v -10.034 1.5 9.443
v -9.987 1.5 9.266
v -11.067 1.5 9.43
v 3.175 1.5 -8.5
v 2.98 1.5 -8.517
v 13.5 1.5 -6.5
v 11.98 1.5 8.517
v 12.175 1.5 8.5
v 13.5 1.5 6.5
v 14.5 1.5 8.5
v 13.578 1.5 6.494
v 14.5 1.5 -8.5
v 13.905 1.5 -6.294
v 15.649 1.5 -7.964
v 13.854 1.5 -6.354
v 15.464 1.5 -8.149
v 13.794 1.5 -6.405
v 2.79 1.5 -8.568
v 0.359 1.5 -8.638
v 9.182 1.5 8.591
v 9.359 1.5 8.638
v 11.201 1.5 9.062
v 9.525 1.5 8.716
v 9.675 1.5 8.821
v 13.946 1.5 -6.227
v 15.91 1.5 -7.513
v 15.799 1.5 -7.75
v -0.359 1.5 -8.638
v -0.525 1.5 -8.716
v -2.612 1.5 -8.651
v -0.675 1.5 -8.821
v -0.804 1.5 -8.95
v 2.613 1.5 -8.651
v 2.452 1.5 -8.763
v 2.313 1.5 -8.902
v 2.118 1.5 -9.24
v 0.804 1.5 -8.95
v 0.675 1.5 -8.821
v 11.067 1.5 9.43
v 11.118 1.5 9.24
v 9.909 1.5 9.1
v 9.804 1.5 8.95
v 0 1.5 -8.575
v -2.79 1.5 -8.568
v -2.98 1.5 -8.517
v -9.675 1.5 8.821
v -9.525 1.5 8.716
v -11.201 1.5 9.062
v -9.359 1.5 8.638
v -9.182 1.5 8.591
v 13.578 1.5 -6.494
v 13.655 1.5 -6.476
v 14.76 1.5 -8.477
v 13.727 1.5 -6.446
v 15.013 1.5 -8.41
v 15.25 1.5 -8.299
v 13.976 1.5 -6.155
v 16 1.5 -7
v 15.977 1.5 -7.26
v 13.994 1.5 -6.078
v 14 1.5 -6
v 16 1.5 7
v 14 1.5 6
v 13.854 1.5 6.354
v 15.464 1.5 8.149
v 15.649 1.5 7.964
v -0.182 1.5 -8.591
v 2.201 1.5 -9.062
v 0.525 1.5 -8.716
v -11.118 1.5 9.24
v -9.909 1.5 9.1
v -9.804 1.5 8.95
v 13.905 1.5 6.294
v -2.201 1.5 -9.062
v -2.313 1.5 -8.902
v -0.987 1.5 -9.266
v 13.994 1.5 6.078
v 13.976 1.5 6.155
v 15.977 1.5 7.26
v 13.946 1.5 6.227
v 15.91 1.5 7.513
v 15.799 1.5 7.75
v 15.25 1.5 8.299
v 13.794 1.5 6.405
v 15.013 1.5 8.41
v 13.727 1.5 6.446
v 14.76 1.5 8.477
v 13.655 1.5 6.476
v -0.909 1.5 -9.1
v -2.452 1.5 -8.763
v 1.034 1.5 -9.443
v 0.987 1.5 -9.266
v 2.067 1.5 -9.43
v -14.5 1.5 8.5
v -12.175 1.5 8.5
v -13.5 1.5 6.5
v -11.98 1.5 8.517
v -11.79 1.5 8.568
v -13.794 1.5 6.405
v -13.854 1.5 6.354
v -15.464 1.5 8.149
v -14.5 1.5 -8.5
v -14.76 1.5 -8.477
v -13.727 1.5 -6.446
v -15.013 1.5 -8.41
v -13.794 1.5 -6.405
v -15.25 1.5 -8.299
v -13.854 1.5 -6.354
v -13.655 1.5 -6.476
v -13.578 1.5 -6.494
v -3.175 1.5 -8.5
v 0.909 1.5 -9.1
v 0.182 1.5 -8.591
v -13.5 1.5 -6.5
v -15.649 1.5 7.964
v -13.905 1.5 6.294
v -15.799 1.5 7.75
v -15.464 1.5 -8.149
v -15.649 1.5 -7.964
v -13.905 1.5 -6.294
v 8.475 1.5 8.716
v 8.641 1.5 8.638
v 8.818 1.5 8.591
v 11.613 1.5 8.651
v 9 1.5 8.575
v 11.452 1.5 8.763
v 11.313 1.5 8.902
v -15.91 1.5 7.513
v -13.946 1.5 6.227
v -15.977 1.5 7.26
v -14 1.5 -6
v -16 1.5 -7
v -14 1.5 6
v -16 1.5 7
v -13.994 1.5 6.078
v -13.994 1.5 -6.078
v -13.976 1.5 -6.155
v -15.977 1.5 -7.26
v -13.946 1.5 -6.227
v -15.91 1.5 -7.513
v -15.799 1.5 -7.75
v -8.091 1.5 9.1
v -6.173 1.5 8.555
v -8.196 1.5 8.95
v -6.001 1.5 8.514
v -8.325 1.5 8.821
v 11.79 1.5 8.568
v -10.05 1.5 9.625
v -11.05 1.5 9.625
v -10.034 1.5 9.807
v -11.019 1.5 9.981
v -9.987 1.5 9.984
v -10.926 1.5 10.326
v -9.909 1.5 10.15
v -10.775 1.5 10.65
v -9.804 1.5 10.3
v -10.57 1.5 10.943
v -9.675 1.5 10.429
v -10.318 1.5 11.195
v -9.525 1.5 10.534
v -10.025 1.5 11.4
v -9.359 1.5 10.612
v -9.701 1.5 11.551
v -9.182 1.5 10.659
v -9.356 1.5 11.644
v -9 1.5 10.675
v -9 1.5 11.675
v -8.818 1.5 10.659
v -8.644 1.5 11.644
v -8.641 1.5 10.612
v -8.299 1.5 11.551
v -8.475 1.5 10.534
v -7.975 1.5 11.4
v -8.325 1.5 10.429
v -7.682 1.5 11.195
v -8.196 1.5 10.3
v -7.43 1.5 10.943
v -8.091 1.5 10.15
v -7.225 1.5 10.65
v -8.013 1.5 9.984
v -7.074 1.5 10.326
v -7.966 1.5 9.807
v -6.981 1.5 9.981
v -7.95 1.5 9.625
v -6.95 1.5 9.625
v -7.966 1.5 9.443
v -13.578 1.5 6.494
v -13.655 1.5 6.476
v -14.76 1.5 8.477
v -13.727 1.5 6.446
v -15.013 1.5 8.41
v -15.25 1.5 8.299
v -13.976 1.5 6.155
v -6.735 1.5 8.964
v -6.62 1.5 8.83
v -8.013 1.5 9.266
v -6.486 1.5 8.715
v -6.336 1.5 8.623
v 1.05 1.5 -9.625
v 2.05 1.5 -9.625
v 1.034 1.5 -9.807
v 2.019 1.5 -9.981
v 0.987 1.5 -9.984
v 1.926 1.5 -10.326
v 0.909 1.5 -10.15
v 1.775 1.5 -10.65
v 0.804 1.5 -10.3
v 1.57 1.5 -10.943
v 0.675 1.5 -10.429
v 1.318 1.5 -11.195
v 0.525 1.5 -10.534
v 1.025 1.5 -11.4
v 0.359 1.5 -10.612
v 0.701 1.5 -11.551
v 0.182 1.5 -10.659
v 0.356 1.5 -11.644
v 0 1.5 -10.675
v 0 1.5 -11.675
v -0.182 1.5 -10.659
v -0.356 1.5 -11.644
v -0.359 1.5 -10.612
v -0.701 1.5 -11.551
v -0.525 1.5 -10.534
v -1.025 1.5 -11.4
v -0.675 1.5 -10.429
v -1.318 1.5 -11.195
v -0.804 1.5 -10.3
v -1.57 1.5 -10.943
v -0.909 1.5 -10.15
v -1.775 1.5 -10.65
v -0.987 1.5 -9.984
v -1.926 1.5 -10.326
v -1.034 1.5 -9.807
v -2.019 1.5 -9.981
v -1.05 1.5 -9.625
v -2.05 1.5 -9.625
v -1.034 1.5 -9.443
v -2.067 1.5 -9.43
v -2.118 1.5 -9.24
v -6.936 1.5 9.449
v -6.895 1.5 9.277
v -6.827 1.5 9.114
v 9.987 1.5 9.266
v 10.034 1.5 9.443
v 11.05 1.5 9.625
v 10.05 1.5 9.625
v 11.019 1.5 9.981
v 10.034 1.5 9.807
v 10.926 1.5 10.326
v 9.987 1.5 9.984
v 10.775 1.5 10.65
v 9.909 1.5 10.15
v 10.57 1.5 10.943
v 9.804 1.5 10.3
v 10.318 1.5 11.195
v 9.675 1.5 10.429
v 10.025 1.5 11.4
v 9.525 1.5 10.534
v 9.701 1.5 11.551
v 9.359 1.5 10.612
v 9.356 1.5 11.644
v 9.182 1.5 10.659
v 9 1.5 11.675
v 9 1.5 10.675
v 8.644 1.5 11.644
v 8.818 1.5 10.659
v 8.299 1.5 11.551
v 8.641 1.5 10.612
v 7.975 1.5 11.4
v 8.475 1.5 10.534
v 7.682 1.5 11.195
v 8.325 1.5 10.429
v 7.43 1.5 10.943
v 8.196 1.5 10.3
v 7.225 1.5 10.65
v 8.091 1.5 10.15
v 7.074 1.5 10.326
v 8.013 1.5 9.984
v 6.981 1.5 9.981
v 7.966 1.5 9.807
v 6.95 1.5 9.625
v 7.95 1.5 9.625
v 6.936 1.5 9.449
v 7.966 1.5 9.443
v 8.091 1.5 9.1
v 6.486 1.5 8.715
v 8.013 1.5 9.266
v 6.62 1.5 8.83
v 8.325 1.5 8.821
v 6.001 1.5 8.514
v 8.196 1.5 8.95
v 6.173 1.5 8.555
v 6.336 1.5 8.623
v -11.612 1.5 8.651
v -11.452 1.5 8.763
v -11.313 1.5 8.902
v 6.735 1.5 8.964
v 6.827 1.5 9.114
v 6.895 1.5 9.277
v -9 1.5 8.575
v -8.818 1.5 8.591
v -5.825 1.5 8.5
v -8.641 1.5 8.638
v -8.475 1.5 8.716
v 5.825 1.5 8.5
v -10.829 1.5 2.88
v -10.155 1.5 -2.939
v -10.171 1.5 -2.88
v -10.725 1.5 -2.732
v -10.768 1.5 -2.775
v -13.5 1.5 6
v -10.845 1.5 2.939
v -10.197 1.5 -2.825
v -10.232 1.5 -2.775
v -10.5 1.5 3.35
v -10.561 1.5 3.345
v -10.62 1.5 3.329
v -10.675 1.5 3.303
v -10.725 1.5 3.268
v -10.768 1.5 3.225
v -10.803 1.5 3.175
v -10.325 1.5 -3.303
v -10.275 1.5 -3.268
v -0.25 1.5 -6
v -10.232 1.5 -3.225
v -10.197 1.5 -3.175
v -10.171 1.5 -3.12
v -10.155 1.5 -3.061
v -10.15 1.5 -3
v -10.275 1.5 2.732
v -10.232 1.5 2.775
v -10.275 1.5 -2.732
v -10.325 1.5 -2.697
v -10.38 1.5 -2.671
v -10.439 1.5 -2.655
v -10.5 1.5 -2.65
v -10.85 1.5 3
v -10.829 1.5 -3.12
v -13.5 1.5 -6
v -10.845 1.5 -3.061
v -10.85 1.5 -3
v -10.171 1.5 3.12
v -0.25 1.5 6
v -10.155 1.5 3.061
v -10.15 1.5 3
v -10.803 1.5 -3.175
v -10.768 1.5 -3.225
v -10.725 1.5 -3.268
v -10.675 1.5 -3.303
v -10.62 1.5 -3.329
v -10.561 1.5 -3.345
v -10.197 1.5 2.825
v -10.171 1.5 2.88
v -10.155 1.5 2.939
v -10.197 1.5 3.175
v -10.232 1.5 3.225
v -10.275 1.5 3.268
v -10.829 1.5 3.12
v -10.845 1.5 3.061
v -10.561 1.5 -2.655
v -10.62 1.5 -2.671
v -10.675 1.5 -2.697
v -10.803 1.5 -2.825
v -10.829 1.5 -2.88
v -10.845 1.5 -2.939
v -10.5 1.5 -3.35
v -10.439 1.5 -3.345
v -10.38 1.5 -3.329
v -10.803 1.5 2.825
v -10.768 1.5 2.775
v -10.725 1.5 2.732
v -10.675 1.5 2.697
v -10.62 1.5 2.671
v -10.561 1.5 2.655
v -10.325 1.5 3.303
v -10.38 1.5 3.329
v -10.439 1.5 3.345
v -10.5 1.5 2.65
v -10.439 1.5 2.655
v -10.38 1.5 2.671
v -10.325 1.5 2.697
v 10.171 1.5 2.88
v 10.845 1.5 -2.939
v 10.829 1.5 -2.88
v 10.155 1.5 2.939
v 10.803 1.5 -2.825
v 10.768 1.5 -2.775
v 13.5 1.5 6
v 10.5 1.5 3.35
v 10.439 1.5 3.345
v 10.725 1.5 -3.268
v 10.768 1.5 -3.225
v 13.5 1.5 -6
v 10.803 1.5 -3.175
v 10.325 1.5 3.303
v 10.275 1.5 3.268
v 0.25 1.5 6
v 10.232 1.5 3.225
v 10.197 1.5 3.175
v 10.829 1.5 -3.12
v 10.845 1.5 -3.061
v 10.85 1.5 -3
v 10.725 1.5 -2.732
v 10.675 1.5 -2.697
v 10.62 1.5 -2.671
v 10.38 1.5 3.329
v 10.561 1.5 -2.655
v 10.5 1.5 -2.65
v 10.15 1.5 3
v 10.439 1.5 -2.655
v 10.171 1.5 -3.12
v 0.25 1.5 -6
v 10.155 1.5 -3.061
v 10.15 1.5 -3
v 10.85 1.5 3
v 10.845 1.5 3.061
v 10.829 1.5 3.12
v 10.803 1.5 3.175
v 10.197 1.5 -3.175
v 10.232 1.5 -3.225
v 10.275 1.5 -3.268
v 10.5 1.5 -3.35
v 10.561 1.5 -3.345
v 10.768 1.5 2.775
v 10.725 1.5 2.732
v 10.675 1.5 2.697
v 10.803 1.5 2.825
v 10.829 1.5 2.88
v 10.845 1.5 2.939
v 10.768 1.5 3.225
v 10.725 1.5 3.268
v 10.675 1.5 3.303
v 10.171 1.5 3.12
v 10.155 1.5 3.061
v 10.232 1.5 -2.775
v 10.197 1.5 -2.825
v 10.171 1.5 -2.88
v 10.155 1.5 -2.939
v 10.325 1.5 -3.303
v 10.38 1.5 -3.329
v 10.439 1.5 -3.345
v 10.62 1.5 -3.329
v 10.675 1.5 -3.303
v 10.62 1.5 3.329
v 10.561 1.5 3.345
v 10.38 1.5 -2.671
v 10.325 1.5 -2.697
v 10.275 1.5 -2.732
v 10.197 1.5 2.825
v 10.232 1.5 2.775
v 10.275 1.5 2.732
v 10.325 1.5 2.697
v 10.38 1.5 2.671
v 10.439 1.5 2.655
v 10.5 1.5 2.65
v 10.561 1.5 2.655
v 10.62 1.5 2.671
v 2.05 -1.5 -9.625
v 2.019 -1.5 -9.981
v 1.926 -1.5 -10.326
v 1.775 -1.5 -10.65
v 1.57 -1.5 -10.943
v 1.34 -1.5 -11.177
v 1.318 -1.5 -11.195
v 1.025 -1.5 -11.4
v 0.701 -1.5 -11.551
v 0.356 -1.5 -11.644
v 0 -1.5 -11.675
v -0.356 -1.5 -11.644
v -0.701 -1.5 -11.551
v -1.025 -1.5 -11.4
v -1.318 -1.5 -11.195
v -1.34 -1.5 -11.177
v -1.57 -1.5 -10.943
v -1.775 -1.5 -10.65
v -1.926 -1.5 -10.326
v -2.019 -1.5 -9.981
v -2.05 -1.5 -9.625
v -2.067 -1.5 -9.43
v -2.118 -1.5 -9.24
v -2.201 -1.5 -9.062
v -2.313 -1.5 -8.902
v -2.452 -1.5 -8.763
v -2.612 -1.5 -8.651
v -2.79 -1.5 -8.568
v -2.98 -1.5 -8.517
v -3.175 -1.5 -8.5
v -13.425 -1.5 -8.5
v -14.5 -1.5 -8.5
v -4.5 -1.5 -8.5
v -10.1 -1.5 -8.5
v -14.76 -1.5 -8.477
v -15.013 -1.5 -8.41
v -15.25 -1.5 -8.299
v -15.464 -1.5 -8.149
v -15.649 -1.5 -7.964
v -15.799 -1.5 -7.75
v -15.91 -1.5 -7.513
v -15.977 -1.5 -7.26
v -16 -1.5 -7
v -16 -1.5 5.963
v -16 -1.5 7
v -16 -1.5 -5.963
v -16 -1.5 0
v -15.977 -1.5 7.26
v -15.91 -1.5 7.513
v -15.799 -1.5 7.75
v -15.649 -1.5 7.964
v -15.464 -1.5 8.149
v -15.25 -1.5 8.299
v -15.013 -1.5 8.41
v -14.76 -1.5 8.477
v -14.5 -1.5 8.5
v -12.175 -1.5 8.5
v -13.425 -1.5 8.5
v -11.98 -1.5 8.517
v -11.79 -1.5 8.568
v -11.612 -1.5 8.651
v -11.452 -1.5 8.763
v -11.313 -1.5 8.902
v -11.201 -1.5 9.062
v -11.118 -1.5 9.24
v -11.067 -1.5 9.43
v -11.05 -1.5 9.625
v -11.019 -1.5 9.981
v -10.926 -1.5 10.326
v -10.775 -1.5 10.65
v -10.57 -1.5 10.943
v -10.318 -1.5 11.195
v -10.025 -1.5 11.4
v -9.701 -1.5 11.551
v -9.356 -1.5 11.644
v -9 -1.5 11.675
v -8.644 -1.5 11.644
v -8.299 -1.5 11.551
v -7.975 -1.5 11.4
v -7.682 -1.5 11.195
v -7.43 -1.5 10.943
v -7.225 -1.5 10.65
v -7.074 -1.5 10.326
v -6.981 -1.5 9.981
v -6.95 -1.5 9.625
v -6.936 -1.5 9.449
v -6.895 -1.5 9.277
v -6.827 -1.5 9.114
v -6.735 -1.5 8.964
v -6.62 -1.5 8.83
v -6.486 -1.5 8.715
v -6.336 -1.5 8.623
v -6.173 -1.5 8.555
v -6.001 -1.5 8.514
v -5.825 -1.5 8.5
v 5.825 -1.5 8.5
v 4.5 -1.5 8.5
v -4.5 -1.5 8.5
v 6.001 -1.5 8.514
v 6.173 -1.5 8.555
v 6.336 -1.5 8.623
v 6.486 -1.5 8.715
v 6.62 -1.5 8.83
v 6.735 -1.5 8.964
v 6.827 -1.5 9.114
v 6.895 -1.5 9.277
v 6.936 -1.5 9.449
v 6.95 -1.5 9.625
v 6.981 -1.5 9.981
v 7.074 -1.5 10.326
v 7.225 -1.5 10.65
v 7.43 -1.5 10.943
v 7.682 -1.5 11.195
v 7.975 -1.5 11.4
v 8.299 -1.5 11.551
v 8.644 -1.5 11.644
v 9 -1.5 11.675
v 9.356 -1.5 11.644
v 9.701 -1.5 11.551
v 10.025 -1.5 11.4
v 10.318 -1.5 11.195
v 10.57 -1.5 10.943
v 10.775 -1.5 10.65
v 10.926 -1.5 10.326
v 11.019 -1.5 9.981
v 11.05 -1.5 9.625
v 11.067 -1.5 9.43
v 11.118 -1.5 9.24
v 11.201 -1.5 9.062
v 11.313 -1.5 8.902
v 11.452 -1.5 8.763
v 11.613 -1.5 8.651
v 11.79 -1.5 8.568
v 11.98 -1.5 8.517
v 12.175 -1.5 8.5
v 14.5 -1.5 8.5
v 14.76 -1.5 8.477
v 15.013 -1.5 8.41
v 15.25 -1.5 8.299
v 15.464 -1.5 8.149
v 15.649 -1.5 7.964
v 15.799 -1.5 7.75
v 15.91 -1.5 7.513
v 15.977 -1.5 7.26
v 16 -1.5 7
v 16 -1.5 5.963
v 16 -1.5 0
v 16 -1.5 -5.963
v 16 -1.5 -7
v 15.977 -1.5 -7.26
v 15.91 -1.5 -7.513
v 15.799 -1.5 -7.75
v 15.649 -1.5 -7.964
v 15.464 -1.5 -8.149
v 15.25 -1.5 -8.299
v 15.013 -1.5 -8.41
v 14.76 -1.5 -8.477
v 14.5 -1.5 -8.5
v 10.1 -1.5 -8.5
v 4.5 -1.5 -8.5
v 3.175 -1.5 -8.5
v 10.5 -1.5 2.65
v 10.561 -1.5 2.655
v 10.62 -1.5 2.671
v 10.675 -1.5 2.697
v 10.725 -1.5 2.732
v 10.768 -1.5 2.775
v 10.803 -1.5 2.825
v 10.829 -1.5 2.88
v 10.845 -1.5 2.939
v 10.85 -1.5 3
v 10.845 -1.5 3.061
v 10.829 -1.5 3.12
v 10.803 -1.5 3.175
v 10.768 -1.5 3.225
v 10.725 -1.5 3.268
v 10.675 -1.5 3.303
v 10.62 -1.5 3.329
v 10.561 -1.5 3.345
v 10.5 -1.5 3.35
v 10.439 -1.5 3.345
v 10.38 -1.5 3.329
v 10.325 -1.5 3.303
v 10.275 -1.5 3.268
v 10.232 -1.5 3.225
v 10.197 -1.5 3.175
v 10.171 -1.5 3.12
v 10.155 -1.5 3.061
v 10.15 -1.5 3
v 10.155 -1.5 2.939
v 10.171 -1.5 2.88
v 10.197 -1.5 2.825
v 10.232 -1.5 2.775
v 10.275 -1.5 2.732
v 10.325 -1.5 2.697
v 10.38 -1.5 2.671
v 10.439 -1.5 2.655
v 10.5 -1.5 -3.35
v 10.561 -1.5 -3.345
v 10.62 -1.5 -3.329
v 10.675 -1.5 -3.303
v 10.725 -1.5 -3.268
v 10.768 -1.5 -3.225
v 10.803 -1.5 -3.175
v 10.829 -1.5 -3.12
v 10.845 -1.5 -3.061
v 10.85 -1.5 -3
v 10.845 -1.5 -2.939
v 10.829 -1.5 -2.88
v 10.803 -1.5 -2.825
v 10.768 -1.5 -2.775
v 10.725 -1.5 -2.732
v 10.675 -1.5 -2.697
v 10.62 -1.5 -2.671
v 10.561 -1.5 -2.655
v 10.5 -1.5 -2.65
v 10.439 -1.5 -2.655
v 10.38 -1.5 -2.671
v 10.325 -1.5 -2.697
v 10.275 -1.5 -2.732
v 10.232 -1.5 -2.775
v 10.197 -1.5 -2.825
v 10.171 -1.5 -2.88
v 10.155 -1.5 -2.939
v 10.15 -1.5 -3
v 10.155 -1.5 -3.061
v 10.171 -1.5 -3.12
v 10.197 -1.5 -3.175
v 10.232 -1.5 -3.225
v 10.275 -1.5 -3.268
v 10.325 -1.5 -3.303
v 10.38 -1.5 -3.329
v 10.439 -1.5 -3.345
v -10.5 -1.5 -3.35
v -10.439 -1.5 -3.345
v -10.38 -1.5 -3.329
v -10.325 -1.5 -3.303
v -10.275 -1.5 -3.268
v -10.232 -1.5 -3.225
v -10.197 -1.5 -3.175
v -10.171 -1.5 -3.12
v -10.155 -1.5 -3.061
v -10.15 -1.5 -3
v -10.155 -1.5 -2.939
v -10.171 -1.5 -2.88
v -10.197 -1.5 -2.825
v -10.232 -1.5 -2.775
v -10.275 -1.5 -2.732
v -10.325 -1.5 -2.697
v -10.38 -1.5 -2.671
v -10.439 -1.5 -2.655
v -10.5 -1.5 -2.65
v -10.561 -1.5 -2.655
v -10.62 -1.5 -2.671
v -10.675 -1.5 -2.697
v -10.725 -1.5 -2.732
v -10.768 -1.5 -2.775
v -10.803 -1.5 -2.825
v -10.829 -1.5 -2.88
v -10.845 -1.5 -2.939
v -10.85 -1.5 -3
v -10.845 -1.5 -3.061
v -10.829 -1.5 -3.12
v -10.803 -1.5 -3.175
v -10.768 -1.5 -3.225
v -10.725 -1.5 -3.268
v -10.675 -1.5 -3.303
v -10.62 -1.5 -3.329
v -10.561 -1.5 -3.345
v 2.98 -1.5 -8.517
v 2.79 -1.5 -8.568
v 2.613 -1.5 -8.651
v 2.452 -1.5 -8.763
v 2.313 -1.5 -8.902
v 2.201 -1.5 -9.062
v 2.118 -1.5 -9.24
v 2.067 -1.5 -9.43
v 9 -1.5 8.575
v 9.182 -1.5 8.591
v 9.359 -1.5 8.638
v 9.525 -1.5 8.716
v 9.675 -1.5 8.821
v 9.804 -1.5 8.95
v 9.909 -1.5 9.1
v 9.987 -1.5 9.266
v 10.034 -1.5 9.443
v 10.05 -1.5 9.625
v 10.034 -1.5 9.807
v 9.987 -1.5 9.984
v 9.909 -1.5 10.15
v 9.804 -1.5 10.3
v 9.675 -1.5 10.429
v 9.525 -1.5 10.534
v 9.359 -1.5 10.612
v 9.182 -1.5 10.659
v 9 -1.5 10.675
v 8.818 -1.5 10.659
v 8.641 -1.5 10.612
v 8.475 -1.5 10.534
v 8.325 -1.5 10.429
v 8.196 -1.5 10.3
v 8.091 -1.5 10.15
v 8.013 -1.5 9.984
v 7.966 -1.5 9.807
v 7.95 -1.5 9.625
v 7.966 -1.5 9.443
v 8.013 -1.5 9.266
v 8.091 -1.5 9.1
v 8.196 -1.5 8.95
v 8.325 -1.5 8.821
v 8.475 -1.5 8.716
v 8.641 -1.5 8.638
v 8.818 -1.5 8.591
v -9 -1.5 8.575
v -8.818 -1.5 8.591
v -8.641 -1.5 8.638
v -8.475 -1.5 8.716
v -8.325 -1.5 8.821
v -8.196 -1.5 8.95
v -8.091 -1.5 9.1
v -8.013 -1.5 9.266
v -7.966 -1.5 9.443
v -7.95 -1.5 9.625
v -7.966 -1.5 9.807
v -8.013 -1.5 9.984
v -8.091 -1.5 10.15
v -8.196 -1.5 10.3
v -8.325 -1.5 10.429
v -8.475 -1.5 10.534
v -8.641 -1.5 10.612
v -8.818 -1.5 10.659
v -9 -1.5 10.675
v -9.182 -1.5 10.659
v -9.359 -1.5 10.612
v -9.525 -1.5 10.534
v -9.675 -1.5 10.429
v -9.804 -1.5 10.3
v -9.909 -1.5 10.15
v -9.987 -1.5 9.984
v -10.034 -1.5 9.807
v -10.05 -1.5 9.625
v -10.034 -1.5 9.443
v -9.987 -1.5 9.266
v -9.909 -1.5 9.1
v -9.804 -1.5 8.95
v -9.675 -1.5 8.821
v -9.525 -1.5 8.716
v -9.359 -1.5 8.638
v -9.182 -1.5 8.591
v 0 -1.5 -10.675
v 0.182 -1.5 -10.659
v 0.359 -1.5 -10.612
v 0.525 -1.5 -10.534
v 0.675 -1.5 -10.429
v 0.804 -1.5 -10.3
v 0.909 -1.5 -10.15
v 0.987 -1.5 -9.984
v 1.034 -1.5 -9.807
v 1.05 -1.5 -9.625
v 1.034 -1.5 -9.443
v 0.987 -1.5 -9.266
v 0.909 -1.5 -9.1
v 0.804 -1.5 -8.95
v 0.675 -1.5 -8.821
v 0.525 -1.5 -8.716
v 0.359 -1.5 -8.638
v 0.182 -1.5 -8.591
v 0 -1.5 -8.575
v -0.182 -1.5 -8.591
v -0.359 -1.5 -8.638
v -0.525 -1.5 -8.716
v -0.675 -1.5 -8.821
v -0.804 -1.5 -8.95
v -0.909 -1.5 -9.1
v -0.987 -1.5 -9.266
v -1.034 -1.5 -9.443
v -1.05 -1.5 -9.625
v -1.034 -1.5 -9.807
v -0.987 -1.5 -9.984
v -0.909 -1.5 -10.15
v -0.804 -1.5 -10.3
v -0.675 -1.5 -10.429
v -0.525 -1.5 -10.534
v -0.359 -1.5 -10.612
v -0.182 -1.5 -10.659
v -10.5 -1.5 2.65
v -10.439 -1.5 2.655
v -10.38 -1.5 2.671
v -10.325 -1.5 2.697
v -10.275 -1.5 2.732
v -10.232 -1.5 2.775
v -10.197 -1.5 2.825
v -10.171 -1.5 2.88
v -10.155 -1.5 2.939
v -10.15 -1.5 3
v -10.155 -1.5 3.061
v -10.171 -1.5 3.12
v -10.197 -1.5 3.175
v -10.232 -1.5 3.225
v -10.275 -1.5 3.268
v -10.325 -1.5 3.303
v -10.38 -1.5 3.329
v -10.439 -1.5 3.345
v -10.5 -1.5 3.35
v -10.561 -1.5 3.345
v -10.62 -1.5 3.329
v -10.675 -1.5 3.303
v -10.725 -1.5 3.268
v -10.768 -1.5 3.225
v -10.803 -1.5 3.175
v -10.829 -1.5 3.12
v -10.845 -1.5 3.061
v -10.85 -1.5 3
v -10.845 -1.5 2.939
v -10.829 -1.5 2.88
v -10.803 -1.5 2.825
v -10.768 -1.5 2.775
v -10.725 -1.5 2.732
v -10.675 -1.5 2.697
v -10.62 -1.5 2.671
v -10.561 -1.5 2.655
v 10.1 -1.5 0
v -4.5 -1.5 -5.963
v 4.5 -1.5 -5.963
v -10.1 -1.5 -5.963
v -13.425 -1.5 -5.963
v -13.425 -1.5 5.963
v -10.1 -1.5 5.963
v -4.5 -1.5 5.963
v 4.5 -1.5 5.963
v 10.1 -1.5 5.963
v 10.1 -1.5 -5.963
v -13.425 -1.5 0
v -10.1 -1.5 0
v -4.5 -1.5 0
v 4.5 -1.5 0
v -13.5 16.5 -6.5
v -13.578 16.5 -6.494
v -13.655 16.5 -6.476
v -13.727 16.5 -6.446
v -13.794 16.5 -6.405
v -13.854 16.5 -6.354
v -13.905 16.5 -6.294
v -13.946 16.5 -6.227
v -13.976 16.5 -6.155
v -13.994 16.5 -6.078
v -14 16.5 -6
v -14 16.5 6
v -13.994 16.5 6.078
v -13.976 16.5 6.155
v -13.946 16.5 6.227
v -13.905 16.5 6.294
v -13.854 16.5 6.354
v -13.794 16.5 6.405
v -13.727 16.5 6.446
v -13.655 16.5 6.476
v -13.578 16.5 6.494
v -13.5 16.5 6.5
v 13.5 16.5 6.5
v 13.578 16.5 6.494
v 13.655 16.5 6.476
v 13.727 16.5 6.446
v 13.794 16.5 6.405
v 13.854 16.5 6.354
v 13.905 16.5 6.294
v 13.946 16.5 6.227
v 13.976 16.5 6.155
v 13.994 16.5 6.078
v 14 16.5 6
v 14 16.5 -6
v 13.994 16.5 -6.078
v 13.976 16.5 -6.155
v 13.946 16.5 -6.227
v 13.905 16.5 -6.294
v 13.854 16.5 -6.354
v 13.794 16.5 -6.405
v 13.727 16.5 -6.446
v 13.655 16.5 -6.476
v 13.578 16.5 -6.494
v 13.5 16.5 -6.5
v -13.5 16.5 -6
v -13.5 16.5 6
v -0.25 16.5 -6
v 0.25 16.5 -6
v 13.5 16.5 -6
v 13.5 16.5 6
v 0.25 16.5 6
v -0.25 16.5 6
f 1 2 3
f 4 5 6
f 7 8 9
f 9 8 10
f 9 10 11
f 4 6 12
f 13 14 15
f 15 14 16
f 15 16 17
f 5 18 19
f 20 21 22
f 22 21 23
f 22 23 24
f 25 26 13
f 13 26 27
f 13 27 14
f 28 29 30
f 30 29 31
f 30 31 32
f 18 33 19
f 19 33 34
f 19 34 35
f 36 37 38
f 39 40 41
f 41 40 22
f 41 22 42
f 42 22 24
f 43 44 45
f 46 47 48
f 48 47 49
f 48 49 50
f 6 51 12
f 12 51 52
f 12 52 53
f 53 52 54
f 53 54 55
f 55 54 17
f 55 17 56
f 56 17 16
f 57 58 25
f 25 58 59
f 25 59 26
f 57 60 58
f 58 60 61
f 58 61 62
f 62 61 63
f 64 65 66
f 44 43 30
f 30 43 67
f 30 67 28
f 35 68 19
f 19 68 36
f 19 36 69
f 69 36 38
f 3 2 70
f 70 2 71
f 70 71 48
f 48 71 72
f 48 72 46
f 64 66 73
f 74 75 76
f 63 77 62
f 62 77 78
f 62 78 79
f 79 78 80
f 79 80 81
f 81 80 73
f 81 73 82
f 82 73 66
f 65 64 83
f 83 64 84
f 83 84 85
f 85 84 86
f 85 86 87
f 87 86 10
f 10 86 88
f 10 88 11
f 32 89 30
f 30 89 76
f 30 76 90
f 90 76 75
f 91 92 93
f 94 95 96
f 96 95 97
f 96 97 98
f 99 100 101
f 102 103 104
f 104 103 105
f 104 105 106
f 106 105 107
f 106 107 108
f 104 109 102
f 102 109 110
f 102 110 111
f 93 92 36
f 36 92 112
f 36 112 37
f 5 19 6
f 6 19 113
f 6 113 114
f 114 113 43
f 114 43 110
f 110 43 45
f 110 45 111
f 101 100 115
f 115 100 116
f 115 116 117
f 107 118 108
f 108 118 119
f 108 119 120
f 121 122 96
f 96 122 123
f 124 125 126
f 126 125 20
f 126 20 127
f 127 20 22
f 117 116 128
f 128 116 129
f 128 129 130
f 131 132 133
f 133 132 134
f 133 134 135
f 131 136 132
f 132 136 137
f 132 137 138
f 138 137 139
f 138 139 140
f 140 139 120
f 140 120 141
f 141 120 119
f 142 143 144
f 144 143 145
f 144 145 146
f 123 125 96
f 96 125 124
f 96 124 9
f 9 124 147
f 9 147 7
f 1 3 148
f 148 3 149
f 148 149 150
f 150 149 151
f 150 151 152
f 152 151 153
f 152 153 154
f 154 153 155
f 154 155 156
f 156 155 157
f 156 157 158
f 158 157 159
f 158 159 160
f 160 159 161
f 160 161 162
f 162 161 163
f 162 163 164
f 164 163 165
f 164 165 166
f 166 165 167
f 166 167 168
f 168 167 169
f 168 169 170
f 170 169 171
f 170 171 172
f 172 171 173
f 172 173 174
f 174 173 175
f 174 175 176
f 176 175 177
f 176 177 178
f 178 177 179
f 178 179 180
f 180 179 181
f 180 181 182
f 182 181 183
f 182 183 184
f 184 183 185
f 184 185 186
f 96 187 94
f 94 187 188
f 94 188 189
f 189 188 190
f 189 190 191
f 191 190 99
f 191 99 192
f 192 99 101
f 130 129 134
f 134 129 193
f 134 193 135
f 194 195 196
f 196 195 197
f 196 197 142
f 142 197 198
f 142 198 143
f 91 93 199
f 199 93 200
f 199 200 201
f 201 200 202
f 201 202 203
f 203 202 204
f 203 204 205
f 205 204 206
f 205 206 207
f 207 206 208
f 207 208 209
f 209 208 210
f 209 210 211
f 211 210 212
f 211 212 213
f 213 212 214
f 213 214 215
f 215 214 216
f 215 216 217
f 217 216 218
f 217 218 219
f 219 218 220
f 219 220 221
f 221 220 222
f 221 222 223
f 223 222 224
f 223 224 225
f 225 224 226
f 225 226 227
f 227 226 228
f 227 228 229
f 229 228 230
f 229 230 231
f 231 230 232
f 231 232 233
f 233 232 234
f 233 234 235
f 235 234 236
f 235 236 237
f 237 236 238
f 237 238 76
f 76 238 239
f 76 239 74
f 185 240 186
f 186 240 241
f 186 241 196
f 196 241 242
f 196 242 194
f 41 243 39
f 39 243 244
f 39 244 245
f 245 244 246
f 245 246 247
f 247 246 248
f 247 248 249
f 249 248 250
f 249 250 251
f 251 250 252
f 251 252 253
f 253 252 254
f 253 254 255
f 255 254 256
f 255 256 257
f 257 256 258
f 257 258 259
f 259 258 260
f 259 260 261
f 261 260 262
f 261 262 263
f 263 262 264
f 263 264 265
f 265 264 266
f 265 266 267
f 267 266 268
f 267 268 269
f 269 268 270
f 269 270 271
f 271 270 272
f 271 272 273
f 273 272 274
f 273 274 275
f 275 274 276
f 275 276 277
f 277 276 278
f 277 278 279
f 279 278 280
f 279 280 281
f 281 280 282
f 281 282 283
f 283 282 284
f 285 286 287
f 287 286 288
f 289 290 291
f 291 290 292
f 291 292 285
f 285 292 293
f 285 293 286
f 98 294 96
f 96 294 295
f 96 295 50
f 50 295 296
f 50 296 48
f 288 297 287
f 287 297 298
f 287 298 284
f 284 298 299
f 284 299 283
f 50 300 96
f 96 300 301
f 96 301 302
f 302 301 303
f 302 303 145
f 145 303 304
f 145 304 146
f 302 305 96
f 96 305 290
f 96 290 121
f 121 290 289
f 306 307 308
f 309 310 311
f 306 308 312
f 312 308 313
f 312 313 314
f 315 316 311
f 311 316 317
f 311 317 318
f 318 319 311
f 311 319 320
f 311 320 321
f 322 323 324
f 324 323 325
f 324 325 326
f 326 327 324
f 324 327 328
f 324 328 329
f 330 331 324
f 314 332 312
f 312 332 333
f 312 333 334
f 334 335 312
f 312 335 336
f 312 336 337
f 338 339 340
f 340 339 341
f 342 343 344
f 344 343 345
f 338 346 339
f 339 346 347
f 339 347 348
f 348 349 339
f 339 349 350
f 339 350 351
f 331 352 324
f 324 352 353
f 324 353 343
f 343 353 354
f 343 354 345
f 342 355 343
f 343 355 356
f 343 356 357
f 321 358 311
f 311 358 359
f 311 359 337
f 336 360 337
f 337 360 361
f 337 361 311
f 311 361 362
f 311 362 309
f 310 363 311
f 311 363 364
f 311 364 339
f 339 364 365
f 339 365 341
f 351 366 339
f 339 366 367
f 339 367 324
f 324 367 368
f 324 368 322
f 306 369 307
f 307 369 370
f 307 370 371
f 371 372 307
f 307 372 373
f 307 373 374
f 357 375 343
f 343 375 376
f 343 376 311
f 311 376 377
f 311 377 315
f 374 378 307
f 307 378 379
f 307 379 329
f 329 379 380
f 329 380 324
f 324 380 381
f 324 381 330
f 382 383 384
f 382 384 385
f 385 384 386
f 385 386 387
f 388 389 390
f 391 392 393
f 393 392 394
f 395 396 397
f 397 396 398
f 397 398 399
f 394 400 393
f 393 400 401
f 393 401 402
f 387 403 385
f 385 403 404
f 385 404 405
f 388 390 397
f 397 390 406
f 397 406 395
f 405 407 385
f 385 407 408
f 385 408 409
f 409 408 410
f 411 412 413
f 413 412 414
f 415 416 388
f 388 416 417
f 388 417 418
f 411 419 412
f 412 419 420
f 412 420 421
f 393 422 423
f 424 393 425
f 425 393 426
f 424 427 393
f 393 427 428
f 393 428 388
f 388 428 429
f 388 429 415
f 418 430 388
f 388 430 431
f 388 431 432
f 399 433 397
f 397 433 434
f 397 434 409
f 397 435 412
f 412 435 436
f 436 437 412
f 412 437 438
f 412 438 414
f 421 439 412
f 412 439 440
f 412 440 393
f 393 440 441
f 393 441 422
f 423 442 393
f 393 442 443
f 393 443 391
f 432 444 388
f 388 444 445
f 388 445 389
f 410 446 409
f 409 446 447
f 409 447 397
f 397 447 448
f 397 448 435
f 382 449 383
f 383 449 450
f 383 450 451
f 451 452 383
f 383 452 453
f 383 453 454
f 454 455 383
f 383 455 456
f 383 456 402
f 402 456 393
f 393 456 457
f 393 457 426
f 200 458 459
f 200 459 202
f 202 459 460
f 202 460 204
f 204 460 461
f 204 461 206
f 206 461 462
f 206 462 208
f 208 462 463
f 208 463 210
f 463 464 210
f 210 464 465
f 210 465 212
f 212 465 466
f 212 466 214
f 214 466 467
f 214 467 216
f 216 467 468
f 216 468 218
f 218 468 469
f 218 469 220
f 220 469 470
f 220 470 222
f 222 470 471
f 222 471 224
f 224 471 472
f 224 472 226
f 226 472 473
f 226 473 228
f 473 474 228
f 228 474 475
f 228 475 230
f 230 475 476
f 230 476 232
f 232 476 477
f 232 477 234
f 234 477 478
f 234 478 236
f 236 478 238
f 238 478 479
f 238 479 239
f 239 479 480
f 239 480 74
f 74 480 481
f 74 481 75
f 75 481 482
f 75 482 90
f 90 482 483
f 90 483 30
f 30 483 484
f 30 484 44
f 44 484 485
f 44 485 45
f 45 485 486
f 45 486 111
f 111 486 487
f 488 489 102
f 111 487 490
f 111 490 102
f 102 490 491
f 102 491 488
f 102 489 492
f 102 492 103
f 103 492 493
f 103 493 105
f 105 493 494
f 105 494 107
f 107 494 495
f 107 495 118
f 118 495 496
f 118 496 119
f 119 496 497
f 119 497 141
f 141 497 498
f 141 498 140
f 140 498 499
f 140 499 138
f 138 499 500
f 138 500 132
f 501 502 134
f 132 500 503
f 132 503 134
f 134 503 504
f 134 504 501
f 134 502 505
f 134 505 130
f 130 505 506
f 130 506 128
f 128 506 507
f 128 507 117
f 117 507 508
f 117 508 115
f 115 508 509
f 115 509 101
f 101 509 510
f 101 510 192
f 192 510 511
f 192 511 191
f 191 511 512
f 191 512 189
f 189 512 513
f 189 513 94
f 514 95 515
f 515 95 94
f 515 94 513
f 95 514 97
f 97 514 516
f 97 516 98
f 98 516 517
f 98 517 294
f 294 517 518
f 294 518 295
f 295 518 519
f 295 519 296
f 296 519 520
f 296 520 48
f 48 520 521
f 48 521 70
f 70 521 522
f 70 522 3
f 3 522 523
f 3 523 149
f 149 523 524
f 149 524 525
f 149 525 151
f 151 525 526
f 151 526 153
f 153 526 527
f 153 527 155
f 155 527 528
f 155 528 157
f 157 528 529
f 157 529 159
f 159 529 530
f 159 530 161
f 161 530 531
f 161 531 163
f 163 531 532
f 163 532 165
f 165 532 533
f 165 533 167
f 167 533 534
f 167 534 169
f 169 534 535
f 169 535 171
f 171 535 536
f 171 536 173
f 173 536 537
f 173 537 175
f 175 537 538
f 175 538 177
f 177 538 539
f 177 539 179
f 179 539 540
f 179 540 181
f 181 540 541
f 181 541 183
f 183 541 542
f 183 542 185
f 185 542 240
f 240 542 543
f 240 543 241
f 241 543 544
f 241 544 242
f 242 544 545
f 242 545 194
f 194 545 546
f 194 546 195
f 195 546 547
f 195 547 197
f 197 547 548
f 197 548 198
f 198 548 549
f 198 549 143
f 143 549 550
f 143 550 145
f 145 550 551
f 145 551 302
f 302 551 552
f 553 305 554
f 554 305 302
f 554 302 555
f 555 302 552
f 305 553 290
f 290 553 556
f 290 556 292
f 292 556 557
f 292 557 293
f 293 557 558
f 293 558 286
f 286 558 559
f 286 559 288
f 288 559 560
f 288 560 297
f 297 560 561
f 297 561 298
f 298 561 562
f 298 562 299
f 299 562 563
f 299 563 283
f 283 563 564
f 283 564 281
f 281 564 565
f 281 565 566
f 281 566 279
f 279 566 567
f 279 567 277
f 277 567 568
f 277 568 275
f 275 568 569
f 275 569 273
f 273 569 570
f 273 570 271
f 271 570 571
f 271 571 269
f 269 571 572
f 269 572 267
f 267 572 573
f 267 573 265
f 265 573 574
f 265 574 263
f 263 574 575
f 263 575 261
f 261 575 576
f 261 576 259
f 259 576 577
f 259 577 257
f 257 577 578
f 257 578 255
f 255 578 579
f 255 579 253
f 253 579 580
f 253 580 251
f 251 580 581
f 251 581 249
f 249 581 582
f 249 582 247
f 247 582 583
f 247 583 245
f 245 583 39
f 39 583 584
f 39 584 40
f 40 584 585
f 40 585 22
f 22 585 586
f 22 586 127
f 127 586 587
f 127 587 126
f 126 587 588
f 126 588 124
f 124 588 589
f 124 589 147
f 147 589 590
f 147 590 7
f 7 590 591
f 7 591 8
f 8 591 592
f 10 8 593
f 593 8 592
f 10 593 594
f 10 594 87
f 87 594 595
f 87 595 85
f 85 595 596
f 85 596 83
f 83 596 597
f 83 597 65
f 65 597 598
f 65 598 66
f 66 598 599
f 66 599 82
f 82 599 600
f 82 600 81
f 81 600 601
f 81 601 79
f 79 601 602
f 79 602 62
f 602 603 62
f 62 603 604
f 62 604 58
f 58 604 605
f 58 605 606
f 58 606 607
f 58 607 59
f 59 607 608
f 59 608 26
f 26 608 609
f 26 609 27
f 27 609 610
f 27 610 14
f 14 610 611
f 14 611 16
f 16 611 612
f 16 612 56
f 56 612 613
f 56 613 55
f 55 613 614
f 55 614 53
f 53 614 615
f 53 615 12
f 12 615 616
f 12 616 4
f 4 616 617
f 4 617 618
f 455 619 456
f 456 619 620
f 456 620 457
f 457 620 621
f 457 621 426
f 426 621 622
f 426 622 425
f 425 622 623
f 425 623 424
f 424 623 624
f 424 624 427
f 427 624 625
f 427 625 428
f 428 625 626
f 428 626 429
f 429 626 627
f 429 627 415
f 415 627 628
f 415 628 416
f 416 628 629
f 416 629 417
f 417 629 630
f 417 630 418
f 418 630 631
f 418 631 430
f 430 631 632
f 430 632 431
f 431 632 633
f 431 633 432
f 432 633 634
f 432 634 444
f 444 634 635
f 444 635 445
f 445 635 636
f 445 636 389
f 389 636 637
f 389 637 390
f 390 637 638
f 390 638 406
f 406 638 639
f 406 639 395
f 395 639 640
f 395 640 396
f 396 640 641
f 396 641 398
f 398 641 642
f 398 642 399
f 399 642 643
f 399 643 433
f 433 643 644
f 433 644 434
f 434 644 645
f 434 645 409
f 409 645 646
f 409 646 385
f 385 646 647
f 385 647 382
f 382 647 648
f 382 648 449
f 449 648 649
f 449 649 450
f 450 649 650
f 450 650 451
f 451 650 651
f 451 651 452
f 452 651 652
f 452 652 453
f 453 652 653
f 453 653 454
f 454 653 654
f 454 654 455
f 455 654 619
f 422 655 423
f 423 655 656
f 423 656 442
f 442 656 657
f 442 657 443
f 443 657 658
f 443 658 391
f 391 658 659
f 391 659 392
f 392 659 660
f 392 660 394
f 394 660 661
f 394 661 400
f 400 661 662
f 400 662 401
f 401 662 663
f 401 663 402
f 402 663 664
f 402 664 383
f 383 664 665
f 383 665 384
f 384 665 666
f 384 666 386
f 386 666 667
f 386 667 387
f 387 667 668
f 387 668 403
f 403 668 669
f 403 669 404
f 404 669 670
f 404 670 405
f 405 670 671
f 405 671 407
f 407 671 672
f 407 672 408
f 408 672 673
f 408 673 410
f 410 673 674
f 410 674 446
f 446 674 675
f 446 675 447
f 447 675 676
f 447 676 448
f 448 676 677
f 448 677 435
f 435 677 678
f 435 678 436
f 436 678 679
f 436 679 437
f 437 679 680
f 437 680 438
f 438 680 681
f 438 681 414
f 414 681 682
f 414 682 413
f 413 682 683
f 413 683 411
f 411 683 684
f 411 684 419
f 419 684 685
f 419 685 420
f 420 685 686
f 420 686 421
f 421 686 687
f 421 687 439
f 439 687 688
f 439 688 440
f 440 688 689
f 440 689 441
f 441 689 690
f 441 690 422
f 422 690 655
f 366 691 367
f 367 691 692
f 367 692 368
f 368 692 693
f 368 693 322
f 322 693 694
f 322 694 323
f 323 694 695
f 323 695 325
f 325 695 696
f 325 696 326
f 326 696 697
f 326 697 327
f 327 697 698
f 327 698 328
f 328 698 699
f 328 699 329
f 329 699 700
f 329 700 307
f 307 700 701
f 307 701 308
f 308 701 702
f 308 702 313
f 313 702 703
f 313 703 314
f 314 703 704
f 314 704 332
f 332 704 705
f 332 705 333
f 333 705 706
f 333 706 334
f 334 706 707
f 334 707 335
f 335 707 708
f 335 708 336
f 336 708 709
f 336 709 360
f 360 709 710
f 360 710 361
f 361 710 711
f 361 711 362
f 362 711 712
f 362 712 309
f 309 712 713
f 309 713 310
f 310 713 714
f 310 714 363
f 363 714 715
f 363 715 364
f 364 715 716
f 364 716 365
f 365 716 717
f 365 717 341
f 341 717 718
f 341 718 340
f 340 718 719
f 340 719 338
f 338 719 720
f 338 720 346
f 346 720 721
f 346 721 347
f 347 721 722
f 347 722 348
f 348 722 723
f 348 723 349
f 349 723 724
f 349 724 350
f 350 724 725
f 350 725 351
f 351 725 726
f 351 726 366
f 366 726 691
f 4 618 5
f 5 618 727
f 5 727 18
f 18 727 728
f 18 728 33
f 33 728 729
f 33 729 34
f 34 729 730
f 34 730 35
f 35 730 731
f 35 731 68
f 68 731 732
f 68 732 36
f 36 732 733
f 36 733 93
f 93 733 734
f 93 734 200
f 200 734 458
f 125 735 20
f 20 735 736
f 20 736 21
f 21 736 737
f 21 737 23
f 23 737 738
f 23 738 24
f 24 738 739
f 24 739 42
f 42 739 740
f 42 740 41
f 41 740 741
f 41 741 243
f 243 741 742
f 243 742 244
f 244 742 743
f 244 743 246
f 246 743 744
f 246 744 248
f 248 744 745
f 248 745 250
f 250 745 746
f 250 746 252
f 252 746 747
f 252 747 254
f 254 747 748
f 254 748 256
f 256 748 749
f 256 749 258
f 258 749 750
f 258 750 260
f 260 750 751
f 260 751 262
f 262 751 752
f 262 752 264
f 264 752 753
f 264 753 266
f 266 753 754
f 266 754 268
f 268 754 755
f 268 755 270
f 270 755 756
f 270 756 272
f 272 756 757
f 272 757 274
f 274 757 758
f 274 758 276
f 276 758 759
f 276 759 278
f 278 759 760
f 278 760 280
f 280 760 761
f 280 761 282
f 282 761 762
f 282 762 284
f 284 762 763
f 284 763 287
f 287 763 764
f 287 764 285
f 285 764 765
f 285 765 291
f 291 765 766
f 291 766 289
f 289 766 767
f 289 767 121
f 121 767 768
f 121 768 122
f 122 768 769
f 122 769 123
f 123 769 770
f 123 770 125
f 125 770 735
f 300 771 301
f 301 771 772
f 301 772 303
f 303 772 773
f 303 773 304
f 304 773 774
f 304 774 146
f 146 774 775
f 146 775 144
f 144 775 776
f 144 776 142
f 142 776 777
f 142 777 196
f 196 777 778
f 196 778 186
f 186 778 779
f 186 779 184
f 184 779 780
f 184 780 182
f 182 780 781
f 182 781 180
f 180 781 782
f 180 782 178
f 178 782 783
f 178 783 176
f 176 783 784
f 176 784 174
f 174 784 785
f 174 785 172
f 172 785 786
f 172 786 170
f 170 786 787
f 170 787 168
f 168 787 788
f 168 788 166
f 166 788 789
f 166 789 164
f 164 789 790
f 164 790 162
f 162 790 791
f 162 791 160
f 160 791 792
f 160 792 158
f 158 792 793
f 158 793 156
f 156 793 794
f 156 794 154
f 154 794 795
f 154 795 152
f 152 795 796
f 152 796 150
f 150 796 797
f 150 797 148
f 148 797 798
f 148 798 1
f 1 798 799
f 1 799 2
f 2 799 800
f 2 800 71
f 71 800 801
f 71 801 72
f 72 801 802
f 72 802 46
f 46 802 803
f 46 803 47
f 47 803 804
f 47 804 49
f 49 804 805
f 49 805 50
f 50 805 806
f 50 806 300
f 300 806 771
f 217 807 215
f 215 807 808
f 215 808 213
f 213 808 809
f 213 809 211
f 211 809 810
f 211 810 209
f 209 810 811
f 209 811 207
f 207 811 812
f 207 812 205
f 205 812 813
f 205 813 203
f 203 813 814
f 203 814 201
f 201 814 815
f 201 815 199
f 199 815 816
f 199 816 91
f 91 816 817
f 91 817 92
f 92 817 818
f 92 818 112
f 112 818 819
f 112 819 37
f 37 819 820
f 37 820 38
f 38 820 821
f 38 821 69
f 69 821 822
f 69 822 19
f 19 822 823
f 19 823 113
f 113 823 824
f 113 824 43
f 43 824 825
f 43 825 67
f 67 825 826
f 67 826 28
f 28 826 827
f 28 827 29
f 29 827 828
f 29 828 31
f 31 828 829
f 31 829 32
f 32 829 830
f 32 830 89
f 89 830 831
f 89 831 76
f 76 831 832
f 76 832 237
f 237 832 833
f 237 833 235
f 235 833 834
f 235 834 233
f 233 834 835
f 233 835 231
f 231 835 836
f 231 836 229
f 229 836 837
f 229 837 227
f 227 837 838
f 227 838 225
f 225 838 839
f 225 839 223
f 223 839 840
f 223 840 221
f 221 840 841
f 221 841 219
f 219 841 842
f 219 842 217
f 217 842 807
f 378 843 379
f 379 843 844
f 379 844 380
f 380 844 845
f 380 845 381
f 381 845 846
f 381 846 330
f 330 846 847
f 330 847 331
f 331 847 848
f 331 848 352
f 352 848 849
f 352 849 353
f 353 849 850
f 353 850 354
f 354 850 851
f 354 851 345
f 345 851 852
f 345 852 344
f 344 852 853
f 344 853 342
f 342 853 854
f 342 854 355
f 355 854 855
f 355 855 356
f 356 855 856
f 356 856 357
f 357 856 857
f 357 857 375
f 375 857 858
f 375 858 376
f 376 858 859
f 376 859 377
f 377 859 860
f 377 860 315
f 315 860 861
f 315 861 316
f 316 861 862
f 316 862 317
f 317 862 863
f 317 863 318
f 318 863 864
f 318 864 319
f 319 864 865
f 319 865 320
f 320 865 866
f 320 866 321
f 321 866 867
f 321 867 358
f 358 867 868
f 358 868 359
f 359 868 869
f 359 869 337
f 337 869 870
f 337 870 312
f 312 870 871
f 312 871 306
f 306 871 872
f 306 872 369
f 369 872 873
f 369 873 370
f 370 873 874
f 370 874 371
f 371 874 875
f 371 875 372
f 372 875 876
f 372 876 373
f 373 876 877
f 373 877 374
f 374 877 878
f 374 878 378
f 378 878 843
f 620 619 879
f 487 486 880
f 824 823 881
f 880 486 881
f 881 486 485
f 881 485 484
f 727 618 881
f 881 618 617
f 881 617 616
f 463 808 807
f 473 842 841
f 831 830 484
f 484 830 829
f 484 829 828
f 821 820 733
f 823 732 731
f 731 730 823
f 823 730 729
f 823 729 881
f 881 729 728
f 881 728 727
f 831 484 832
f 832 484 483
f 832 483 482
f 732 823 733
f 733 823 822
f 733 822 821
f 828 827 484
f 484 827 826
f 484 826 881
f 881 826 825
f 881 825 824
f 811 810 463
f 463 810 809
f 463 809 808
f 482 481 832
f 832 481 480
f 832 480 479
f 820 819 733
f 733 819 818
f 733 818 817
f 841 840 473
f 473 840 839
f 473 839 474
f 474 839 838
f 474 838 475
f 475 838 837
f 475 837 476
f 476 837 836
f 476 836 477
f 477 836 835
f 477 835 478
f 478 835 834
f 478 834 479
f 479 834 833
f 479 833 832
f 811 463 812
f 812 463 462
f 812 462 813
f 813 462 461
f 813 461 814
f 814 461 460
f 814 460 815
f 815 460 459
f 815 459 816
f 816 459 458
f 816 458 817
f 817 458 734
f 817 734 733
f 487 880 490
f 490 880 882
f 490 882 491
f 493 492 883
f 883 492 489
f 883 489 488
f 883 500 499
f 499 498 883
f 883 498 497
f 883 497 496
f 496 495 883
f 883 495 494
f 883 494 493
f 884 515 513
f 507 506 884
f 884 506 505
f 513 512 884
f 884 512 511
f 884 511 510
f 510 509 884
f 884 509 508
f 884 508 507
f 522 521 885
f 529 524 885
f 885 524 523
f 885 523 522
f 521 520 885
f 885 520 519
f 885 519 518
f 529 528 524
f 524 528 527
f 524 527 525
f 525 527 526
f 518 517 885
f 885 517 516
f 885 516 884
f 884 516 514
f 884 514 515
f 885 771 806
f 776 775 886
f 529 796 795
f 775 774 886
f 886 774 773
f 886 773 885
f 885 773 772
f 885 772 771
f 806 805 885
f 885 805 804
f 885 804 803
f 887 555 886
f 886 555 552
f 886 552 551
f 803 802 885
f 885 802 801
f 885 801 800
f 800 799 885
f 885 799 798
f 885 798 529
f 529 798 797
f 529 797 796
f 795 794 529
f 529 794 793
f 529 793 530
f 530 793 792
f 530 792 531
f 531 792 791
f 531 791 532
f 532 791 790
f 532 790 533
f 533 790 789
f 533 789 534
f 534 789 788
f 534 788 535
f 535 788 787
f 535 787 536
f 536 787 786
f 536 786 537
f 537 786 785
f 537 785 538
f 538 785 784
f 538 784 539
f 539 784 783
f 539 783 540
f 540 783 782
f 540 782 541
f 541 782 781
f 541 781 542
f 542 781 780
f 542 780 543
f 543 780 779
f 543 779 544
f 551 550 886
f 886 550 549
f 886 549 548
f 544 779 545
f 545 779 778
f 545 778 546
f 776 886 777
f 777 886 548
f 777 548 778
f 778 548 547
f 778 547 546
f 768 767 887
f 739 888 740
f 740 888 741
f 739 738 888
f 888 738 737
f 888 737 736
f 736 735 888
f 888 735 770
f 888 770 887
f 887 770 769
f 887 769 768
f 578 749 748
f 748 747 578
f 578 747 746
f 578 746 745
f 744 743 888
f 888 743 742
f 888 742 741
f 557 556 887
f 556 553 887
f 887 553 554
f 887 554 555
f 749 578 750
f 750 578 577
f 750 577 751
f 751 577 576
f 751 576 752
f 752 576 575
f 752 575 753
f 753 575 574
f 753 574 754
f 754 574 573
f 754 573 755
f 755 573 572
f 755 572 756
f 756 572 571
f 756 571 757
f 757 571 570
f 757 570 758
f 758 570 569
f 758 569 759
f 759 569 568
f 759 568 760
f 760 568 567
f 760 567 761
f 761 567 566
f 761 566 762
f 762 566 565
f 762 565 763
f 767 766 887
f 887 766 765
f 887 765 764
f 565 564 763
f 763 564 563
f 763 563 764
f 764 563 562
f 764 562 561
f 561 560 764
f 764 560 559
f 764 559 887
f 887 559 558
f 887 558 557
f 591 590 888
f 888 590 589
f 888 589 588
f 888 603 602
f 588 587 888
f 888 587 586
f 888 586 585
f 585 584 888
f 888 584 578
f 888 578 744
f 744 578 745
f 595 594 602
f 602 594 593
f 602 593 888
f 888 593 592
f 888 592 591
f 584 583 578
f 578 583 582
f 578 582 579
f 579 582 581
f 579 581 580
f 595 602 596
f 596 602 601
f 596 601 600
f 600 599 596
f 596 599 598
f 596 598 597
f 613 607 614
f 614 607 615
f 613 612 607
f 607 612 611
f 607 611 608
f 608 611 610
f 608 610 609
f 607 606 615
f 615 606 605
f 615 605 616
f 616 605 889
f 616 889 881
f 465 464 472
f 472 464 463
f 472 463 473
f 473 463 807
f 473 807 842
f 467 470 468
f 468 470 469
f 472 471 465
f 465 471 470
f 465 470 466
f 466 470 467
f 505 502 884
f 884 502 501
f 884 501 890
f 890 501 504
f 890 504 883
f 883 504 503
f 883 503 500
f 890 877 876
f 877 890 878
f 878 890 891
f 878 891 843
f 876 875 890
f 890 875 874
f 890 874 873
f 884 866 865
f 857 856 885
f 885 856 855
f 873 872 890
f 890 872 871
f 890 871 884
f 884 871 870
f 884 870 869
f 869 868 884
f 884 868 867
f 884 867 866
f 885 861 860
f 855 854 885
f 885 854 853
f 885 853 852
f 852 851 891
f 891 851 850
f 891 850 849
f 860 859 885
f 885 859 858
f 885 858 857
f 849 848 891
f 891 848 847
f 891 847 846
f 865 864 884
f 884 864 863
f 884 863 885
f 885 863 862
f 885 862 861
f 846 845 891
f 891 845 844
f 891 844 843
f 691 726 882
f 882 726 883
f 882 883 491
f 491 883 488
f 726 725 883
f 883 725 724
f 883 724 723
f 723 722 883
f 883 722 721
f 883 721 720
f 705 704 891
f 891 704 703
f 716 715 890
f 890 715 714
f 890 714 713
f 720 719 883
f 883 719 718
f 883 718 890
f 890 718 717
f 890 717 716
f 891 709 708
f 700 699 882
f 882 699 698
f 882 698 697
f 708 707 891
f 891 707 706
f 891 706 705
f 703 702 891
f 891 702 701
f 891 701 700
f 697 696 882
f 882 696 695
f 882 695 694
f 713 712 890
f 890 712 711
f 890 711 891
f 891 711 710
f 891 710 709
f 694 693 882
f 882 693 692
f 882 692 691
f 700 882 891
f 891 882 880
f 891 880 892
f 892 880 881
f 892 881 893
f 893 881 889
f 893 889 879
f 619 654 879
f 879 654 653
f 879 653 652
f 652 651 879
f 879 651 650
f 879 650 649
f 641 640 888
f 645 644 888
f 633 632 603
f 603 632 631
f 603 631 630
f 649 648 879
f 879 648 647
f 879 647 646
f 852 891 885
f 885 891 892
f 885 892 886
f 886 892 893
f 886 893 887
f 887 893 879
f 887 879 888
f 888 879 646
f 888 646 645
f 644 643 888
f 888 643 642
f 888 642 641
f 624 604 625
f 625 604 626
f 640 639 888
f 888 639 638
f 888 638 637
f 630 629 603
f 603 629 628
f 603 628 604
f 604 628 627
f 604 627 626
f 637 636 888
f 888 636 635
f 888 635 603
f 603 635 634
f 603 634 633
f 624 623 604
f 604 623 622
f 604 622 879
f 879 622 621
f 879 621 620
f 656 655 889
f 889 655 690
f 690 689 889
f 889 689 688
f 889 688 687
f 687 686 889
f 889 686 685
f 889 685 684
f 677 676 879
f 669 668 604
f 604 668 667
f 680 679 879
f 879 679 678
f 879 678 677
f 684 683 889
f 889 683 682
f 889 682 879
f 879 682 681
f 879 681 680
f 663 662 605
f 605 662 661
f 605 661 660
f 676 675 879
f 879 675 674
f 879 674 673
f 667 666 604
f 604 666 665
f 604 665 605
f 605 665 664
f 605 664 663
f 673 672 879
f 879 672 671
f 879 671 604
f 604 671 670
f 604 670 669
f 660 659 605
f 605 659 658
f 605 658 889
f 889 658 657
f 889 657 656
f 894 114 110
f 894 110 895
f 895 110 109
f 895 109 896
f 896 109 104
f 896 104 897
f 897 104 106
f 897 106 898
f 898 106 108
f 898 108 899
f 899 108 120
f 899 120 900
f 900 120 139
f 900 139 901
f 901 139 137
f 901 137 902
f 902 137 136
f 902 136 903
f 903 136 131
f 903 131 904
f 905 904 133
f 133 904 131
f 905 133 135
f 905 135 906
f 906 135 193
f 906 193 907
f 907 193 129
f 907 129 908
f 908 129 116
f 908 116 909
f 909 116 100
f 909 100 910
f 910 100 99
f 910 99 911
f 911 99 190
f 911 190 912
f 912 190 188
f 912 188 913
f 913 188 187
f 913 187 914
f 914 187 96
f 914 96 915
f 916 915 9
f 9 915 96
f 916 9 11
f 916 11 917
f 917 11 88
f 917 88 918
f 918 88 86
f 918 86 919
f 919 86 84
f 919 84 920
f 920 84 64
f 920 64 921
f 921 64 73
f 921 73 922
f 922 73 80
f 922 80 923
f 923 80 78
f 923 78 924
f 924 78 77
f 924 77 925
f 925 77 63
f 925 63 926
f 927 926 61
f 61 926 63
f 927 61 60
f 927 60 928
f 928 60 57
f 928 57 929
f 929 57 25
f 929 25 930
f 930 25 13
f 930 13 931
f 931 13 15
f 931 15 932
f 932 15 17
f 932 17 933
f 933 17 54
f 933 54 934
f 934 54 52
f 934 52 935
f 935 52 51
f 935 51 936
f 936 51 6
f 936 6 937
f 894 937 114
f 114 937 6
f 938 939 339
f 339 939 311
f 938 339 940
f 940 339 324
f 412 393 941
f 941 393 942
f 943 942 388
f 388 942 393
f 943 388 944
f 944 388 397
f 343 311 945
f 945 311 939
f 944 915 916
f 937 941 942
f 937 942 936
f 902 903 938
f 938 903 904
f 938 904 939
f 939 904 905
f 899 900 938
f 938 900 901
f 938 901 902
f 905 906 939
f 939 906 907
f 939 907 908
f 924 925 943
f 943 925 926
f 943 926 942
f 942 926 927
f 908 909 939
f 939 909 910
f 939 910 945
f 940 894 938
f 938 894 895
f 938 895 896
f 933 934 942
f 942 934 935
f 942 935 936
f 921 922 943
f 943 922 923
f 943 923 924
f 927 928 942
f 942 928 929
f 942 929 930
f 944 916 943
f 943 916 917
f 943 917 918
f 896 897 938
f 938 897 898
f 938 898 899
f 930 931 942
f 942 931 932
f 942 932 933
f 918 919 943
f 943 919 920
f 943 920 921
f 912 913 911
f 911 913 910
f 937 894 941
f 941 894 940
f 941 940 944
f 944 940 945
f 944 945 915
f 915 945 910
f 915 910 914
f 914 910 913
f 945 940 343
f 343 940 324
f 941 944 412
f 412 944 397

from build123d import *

# Parameters (mm, degrees)
BASE_PLATE_AND_PORTS_2_R   = 0.35
BASE_PLATE_AND_PORTS_2_R_2 = 1.05
BASE_PLATE_AND_PORTS_DEPTH = 1.5
RESERVOIRS_W               = 0.5
RESERVOIRS_H               = 12
BOSS_EXTRUDE1_DEPTH        = 15


with BuildPart() as part:
    # Base-plate and ports 2 → Base plate and ports (new, symmetric)
    with BuildSketch(Plane(origin=(0, 0, 0), x_dir=(1, 0, 0), z_dir=(0, 1, 0))):
        with BuildLine():
            Line((-16, -7), (-16, 7))
            ThreePointArc((-16, 7), (-15.560660172, 8.060660172), (-14.5, 8.5))
            Line((-14.5, 8.5), (-3.175, 8.5))
            ThreePointArc((-3.175, 8.5), (-2.379504871, 8.829504871), (-2.05, 9.625))
            ThreePointArc((-2.05, 9.625), (0, 11.675), (2.05, 9.625))
            ThreePointArc((2.05, 9.625), (2.379504871, 8.829504871), (3.175, 8.5))
            Line((3.175, 8.5), (14.5, 8.5))
            ThreePointArc((14.5, 8.5), (15.560660172, 8.060660172), (16, 7))
            Line((16, 7), (16, -7))
            ThreePointArc((16, -7), (15.560660172, -8.060660172), (14.5, -8.5))
            Line((14.5, -8.5), (12.175, -8.5))
            ThreePointArc((12.175, -8.5), (11.379504871, -8.829504871), (11.05, -9.625))
            ThreePointArc((11.05, -9.625), (9, -11.675), (6.95, -9.625))
            ThreePointArc((6.95, -9.625), (6.620495129, -8.829504871), (5.825, -8.5))
            Line((5.825, -8.5), (-5.825, -8.5))
            ThreePointArc((-5.825, -8.5), (-6.620495129, -8.829504871), (-6.95, -9.625))
            ThreePointArc((-6.95, -9.625), (-9, -11.675), (-11.05, -9.625))
            ThreePointArc((-11.05, -9.625), (-11.379504871, -8.829504871), (-12.175, -8.5))
            Line((-12.175, -8.5), (-14.5, -8.5))
            ThreePointArc((-14.5, -8.5), (-15.560660172, -8.060660172), (-16, -7))
        make_face()
        with Locations(Location((-10.5, 3, 0), (0, 0, 270))):
            Circle(BASE_PLATE_AND_PORTS_2_R, mode=Mode.SUBTRACT)
        with Locations(Location((10.5, 3, 0), (0, 0, 270))):
            Circle(BASE_PLATE_AND_PORTS_2_R, mode=Mode.SUBTRACT)
        with Locations(Location((10.5, -3, 0), (0, 0, 270))):
            Circle(BASE_PLATE_AND_PORTS_2_R, mode=Mode.SUBTRACT)
        with Locations(Location((-10.5, -3, 0), (0, 0, 270))):
            Circle(BASE_PLATE_AND_PORTS_2_R, mode=Mode.SUBTRACT)
        with Locations(Location((0, 9.625, 0), (0, 0, 270))):
            Circle(BASE_PLATE_AND_PORTS_2_R_2, mode=Mode.SUBTRACT)
        with Locations(Location((-9, -9.625, 0), (0, 0, 270))):
            Circle(BASE_PLATE_AND_PORTS_2_R_2, mode=Mode.SUBTRACT)
        with Locations(Location((9, -9.625, 0), (0, 0, 270))):
            Circle(BASE_PLATE_AND_PORTS_2_R_2, mode=Mode.SUBTRACT)
    extrude(amount=BASE_PLATE_AND_PORTS_DEPTH, both=True)

    # Reservoirs → Boss-Extrude1 (add)
    # profile 1 of 2: a face of its own
    with BuildSketch(Plane(origin=(0, 1.5, 0), x_dir=(1, 0, 0), z_dir=(0, 1, 0))):
        with BuildLine():
            Line((-13.5, 6.5), (13.5, 6.5))
            ThreePointArc((13.5, 6.5), (13.853553391, 6.353553391), (14, 6))
            Line((14, 6), (14, -6))
            ThreePointArc((14, -6), (13.853553391, -6.353553391), (13.5, -6.5))
            Line((13.5, -6.5), (-13.5, -6.5))
            ThreePointArc((-13.5, -6.5), (-13.853553391, -6.353553391), (-14, -6))
            Line((-14, -6), (-14, 6))
            ThreePointArc((-14, 6), (-13.853553391, 6.353553391), (-13.5, 6.5))
        make_face()
        Polygon((4.333333333, -6), (4.833333333, -6), (13.5, -6), (13.5, 6), (4.833333333, 6), (4.333333333, 6), (-4.333333333, 6), (-4.833333333, 6), (-13.5, 6), (-13.5, -6), (-4.833333333, -6), (-4.333333333, -6), align=None, mode=Mode.SUBTRACT)
    # profile 2 of 2: a face of its own
    with BuildSketch(Plane(origin=(0, 1.5, 0), x_dir=(1, 0, 0), z_dir=(0, 1, 0))):
        Rectangle(RESERVOIRS_W, RESERVOIRS_H)
    extrude(amount=BOSS_EXTRUDE1_DEPTH)


solid = part.part
